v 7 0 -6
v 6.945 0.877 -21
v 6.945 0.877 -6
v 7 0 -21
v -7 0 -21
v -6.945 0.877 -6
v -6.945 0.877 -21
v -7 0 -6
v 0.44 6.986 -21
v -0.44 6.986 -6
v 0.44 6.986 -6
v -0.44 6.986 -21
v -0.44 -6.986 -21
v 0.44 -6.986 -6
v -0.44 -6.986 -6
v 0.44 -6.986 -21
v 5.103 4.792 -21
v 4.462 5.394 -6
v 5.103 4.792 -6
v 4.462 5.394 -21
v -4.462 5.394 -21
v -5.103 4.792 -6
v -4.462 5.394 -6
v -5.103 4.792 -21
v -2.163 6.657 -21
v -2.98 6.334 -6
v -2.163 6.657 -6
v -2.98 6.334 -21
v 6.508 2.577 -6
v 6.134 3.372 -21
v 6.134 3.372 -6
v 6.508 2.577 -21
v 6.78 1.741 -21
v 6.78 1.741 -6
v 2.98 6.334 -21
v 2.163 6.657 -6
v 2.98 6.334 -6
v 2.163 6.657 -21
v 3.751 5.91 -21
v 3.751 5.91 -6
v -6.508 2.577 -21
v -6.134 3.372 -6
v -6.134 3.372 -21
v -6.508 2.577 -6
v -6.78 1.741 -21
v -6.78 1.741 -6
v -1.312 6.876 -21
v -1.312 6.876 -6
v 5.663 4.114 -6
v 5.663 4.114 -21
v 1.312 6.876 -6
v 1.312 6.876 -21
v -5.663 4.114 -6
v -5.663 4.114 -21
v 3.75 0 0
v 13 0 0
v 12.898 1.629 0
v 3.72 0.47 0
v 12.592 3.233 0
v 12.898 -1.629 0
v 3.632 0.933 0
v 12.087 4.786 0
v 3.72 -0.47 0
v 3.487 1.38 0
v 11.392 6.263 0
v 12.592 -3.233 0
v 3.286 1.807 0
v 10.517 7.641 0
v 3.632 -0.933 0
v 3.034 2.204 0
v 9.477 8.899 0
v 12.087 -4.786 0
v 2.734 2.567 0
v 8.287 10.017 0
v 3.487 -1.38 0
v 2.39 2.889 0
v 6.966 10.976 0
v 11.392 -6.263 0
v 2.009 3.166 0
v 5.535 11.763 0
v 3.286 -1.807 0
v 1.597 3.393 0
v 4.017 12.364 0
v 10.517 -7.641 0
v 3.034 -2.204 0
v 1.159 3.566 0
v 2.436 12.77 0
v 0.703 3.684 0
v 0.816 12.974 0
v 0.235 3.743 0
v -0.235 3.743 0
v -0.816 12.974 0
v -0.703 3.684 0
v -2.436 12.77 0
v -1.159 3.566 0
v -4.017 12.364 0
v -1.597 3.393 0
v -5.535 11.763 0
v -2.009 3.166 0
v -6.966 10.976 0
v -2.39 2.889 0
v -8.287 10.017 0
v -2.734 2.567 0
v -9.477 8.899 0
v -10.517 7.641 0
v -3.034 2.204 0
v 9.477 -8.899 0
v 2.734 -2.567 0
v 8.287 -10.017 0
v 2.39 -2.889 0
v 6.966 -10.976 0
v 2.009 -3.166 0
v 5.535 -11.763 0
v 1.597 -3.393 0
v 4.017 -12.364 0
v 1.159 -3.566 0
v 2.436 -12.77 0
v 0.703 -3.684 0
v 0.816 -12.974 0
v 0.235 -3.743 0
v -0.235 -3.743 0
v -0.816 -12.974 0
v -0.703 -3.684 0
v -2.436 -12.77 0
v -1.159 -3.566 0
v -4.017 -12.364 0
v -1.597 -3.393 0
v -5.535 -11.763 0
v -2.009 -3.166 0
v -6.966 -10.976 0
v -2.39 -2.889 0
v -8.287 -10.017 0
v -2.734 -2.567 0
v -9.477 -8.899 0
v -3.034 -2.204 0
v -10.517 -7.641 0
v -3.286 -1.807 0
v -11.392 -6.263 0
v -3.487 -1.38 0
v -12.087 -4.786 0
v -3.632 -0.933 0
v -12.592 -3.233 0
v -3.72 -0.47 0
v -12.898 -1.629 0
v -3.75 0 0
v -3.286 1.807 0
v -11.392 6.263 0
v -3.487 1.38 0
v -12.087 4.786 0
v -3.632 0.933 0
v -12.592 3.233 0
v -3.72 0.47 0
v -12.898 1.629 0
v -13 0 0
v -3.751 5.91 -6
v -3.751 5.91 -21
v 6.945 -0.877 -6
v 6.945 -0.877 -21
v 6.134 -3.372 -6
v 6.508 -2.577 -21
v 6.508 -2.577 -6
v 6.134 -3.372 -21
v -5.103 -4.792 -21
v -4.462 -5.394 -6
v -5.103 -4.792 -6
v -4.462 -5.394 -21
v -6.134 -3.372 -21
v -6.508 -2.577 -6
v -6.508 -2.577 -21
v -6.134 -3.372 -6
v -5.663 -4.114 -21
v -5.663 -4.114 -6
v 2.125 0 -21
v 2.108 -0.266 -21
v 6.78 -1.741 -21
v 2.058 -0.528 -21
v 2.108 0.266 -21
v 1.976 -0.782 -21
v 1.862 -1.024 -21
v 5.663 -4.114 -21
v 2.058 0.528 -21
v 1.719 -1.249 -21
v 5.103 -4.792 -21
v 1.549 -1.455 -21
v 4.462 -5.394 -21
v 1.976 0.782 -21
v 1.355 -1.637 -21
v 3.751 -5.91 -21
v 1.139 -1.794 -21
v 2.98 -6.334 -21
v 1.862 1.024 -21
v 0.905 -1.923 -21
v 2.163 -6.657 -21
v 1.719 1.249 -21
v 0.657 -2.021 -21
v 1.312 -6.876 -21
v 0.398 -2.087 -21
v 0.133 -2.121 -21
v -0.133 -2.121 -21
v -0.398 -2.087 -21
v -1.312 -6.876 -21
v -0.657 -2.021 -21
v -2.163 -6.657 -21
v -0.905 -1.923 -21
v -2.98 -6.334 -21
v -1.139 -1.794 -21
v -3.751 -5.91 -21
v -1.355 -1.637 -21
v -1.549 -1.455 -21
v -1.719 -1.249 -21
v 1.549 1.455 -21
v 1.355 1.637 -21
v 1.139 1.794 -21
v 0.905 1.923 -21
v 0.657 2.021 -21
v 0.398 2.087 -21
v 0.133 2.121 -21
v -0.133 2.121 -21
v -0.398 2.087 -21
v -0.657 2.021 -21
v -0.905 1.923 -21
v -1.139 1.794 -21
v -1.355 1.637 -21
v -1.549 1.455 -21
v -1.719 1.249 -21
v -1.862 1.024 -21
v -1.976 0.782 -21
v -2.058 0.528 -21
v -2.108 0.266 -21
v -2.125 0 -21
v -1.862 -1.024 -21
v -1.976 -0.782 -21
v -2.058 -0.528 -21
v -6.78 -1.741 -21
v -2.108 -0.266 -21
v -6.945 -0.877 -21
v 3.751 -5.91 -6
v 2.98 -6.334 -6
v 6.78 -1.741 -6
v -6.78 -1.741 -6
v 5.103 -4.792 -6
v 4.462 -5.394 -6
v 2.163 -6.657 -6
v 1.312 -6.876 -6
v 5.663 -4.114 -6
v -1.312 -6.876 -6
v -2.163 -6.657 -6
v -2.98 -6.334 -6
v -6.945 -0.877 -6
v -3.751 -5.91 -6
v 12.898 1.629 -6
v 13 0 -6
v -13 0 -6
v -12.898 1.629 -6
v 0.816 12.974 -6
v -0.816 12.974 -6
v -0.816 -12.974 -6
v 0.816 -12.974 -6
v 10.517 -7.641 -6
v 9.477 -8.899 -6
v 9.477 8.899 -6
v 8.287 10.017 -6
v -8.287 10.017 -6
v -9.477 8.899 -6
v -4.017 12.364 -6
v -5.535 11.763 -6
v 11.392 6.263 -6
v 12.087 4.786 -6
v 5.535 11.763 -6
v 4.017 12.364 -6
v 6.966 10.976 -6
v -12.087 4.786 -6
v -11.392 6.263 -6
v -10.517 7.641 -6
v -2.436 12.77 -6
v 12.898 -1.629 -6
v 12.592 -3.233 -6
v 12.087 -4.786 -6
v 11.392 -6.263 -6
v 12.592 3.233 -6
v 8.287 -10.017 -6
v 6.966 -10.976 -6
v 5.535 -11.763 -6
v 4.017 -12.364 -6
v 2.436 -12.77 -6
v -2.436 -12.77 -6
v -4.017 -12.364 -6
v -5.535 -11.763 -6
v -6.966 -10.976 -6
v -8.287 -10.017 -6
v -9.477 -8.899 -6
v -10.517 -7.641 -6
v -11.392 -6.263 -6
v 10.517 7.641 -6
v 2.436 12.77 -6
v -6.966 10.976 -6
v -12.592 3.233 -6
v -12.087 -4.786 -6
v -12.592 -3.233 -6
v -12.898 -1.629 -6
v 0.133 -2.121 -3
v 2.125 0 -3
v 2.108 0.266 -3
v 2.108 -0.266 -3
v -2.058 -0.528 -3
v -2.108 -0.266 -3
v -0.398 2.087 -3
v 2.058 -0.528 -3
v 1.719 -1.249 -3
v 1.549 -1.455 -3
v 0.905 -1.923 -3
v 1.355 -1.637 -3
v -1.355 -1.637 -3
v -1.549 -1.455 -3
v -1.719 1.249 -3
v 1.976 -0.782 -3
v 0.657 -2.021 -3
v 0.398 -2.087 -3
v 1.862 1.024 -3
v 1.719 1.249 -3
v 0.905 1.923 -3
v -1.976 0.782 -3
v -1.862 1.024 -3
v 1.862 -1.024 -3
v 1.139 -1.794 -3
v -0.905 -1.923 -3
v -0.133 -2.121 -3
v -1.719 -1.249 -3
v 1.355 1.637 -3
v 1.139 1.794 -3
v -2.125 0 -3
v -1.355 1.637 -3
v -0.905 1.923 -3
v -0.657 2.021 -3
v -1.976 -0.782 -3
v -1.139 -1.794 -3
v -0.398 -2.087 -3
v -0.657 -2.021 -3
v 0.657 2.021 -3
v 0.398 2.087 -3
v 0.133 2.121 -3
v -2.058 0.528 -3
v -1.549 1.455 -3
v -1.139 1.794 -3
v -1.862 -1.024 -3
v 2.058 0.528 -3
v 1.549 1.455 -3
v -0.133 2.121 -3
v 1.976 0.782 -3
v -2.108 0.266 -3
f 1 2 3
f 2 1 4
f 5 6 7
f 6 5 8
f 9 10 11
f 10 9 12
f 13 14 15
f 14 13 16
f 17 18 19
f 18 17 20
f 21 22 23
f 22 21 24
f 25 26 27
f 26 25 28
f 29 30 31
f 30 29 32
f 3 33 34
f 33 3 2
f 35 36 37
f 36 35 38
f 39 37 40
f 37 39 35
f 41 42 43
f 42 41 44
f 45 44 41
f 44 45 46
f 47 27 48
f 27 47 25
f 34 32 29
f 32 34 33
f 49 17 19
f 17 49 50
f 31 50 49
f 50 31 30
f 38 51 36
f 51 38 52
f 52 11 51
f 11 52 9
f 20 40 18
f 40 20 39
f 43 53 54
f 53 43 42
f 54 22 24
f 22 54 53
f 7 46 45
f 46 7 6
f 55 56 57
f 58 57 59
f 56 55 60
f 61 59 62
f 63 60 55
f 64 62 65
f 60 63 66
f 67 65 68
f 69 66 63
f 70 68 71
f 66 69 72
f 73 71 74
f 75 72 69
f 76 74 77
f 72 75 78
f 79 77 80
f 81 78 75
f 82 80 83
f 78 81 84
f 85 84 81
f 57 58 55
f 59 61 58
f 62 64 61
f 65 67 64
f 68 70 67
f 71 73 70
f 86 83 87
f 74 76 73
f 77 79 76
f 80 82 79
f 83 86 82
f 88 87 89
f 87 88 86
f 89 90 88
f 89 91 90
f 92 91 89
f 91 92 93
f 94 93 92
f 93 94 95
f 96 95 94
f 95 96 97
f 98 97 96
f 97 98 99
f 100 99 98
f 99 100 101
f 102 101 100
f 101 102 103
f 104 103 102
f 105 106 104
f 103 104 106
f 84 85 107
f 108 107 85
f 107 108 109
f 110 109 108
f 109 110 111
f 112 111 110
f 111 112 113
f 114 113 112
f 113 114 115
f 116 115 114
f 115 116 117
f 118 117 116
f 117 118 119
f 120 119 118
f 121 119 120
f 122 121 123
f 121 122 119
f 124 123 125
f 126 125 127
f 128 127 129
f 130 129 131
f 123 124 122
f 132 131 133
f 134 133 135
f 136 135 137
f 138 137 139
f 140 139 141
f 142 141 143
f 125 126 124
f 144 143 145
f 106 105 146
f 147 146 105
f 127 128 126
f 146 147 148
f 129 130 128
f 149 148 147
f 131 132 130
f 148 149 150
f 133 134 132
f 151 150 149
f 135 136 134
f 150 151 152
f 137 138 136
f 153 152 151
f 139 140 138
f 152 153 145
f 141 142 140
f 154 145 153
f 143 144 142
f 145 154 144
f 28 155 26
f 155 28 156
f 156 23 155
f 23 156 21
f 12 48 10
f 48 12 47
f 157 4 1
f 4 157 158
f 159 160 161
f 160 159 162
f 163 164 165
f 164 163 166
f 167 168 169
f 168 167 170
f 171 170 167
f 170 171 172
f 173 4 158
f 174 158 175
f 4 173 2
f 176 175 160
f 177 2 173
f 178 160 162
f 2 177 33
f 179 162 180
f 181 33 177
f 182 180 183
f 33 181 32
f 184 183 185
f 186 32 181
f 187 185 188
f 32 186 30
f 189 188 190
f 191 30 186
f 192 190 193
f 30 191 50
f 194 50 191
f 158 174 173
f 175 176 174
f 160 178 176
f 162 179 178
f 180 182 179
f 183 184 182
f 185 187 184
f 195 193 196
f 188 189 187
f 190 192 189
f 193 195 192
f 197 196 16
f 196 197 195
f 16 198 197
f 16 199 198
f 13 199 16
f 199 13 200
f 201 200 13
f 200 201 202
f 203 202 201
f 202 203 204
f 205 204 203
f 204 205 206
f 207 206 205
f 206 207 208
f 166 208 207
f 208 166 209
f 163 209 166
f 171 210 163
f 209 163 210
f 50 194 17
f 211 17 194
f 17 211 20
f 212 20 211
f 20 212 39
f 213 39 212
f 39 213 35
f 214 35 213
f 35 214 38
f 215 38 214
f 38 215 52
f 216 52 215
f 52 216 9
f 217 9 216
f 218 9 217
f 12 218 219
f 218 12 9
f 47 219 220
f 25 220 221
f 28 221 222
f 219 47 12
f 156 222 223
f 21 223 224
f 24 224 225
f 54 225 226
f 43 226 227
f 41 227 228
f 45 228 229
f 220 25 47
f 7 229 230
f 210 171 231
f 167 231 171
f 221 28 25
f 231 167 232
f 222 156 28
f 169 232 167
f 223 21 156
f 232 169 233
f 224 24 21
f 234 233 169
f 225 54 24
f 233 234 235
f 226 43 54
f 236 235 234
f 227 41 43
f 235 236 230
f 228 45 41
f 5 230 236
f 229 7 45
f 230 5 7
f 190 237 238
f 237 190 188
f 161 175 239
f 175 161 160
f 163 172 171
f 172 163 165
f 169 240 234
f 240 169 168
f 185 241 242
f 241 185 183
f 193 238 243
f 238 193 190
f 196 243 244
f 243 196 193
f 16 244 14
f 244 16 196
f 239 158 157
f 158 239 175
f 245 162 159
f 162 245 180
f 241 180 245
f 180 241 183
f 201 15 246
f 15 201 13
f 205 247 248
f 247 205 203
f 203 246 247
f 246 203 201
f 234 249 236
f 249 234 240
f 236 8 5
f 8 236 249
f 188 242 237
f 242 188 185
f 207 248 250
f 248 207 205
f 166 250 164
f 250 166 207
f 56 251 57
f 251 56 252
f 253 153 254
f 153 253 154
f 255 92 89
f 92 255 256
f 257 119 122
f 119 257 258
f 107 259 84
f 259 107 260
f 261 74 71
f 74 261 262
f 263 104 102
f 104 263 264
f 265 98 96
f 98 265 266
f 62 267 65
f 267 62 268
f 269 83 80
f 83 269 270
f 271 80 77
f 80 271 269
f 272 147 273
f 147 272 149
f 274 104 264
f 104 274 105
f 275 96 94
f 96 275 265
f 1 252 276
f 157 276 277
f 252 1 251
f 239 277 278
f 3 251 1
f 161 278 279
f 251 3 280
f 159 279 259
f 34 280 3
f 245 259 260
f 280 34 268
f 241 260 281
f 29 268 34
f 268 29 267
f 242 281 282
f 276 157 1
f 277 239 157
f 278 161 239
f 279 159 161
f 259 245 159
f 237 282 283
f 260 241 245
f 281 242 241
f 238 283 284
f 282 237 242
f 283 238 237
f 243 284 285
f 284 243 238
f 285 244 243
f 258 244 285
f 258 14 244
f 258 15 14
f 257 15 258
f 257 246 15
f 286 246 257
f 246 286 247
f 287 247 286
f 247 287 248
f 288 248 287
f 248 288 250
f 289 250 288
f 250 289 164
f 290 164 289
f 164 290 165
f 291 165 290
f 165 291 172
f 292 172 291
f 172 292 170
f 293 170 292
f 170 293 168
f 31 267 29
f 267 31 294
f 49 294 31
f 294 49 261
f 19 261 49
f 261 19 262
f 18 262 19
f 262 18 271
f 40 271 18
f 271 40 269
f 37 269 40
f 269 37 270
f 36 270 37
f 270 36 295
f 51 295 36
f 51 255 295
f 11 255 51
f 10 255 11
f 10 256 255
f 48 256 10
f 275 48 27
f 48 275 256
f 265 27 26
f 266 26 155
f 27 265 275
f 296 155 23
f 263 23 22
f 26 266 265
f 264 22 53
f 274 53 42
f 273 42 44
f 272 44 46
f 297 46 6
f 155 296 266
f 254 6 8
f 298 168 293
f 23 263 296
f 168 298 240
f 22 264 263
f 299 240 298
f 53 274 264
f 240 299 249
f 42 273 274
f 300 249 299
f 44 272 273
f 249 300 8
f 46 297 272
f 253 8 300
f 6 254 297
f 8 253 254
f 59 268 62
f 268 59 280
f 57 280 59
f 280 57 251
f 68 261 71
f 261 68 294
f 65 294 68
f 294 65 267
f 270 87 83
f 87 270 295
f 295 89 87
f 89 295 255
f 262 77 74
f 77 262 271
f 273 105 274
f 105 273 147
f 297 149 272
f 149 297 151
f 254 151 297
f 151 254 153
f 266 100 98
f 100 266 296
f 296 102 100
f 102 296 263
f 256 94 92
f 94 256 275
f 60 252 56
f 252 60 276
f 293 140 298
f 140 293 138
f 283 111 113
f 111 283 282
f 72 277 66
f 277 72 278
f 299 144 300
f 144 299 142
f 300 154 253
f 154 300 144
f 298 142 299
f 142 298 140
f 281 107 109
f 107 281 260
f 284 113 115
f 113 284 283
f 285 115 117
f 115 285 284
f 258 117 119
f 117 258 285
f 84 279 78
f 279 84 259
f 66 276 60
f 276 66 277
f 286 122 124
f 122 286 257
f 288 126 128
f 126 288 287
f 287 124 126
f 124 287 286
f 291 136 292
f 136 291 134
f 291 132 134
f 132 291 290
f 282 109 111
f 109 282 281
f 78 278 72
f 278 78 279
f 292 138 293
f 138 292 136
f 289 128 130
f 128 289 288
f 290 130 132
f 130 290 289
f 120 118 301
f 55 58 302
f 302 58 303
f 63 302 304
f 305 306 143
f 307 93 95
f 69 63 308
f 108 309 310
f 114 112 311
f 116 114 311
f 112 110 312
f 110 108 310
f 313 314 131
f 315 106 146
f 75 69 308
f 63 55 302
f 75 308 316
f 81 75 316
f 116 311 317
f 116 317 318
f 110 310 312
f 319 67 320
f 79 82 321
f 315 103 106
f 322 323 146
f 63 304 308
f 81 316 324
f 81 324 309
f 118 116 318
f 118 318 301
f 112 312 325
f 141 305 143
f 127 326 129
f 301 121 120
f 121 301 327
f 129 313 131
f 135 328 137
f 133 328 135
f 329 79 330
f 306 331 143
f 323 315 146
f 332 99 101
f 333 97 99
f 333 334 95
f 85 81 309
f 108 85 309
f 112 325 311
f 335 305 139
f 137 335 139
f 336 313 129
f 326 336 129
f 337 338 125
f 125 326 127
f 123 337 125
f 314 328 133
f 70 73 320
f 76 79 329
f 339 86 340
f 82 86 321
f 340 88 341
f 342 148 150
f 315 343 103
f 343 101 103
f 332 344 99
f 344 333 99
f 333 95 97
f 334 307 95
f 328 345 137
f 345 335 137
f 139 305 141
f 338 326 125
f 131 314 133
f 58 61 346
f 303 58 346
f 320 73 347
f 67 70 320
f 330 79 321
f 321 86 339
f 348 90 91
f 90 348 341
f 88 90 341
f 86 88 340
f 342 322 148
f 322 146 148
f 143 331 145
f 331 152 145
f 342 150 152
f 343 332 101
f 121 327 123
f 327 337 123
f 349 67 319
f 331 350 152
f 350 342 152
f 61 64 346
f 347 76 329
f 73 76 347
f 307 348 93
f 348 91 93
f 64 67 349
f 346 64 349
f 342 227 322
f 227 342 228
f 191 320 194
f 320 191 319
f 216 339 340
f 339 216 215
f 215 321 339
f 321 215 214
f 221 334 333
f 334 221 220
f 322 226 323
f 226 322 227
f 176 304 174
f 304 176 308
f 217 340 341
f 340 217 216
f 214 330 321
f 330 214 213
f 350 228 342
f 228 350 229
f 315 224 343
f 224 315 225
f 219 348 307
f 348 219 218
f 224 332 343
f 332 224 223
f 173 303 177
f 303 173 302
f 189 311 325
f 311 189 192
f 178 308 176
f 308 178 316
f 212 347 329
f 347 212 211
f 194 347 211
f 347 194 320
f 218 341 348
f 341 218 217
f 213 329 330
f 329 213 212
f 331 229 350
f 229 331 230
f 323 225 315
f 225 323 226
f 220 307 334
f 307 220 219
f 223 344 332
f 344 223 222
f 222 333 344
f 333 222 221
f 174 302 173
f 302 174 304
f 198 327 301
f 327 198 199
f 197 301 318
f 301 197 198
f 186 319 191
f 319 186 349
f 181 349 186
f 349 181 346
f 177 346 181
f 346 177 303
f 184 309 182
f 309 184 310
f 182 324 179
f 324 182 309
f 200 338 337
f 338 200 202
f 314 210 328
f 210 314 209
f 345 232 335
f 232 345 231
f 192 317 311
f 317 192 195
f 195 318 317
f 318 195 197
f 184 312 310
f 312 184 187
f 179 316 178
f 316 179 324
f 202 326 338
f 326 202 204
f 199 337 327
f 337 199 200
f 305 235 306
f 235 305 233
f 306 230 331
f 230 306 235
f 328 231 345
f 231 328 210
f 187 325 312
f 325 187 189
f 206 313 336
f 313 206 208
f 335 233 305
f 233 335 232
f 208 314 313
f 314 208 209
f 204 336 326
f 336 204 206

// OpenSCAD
$fn = 50;


difference() {
	union() {
		translate(v = [0, 0, -21.0000000000]) {
			cylinder(h = 21, r = 7.0000000000);
		}
		translate(v = [0, 0, -6.0000000000]) {
			cylinder(h = 6, r = 13.0000000000);
		}
	}
	union() {
		translate(v = [0, 0, 0]) {
			rotate(a = [0, 0, 0]) {
				difference() {
					union() {
						#translate(v = [0, 0, -21.0000000000]) {
							cylinder(h = 21, r = 2.0000000000);
						}
						#translate(v = [0, 0, -3]) {
							cylinder(h = 3, r1 = 2.1250000000, r2 = 3.7500000000);
						}
						#translate(v = [0, 0, -21.0000000000]) {
							cylinder(h = 21, r = 2.1250000000);
						}
						#translate(v = [0, 0, -21.0000000000]) {
							cylinder(h = 21, r = 2.0000000000);
						}
					}
					union();
				}
			}
		}
	}
}
